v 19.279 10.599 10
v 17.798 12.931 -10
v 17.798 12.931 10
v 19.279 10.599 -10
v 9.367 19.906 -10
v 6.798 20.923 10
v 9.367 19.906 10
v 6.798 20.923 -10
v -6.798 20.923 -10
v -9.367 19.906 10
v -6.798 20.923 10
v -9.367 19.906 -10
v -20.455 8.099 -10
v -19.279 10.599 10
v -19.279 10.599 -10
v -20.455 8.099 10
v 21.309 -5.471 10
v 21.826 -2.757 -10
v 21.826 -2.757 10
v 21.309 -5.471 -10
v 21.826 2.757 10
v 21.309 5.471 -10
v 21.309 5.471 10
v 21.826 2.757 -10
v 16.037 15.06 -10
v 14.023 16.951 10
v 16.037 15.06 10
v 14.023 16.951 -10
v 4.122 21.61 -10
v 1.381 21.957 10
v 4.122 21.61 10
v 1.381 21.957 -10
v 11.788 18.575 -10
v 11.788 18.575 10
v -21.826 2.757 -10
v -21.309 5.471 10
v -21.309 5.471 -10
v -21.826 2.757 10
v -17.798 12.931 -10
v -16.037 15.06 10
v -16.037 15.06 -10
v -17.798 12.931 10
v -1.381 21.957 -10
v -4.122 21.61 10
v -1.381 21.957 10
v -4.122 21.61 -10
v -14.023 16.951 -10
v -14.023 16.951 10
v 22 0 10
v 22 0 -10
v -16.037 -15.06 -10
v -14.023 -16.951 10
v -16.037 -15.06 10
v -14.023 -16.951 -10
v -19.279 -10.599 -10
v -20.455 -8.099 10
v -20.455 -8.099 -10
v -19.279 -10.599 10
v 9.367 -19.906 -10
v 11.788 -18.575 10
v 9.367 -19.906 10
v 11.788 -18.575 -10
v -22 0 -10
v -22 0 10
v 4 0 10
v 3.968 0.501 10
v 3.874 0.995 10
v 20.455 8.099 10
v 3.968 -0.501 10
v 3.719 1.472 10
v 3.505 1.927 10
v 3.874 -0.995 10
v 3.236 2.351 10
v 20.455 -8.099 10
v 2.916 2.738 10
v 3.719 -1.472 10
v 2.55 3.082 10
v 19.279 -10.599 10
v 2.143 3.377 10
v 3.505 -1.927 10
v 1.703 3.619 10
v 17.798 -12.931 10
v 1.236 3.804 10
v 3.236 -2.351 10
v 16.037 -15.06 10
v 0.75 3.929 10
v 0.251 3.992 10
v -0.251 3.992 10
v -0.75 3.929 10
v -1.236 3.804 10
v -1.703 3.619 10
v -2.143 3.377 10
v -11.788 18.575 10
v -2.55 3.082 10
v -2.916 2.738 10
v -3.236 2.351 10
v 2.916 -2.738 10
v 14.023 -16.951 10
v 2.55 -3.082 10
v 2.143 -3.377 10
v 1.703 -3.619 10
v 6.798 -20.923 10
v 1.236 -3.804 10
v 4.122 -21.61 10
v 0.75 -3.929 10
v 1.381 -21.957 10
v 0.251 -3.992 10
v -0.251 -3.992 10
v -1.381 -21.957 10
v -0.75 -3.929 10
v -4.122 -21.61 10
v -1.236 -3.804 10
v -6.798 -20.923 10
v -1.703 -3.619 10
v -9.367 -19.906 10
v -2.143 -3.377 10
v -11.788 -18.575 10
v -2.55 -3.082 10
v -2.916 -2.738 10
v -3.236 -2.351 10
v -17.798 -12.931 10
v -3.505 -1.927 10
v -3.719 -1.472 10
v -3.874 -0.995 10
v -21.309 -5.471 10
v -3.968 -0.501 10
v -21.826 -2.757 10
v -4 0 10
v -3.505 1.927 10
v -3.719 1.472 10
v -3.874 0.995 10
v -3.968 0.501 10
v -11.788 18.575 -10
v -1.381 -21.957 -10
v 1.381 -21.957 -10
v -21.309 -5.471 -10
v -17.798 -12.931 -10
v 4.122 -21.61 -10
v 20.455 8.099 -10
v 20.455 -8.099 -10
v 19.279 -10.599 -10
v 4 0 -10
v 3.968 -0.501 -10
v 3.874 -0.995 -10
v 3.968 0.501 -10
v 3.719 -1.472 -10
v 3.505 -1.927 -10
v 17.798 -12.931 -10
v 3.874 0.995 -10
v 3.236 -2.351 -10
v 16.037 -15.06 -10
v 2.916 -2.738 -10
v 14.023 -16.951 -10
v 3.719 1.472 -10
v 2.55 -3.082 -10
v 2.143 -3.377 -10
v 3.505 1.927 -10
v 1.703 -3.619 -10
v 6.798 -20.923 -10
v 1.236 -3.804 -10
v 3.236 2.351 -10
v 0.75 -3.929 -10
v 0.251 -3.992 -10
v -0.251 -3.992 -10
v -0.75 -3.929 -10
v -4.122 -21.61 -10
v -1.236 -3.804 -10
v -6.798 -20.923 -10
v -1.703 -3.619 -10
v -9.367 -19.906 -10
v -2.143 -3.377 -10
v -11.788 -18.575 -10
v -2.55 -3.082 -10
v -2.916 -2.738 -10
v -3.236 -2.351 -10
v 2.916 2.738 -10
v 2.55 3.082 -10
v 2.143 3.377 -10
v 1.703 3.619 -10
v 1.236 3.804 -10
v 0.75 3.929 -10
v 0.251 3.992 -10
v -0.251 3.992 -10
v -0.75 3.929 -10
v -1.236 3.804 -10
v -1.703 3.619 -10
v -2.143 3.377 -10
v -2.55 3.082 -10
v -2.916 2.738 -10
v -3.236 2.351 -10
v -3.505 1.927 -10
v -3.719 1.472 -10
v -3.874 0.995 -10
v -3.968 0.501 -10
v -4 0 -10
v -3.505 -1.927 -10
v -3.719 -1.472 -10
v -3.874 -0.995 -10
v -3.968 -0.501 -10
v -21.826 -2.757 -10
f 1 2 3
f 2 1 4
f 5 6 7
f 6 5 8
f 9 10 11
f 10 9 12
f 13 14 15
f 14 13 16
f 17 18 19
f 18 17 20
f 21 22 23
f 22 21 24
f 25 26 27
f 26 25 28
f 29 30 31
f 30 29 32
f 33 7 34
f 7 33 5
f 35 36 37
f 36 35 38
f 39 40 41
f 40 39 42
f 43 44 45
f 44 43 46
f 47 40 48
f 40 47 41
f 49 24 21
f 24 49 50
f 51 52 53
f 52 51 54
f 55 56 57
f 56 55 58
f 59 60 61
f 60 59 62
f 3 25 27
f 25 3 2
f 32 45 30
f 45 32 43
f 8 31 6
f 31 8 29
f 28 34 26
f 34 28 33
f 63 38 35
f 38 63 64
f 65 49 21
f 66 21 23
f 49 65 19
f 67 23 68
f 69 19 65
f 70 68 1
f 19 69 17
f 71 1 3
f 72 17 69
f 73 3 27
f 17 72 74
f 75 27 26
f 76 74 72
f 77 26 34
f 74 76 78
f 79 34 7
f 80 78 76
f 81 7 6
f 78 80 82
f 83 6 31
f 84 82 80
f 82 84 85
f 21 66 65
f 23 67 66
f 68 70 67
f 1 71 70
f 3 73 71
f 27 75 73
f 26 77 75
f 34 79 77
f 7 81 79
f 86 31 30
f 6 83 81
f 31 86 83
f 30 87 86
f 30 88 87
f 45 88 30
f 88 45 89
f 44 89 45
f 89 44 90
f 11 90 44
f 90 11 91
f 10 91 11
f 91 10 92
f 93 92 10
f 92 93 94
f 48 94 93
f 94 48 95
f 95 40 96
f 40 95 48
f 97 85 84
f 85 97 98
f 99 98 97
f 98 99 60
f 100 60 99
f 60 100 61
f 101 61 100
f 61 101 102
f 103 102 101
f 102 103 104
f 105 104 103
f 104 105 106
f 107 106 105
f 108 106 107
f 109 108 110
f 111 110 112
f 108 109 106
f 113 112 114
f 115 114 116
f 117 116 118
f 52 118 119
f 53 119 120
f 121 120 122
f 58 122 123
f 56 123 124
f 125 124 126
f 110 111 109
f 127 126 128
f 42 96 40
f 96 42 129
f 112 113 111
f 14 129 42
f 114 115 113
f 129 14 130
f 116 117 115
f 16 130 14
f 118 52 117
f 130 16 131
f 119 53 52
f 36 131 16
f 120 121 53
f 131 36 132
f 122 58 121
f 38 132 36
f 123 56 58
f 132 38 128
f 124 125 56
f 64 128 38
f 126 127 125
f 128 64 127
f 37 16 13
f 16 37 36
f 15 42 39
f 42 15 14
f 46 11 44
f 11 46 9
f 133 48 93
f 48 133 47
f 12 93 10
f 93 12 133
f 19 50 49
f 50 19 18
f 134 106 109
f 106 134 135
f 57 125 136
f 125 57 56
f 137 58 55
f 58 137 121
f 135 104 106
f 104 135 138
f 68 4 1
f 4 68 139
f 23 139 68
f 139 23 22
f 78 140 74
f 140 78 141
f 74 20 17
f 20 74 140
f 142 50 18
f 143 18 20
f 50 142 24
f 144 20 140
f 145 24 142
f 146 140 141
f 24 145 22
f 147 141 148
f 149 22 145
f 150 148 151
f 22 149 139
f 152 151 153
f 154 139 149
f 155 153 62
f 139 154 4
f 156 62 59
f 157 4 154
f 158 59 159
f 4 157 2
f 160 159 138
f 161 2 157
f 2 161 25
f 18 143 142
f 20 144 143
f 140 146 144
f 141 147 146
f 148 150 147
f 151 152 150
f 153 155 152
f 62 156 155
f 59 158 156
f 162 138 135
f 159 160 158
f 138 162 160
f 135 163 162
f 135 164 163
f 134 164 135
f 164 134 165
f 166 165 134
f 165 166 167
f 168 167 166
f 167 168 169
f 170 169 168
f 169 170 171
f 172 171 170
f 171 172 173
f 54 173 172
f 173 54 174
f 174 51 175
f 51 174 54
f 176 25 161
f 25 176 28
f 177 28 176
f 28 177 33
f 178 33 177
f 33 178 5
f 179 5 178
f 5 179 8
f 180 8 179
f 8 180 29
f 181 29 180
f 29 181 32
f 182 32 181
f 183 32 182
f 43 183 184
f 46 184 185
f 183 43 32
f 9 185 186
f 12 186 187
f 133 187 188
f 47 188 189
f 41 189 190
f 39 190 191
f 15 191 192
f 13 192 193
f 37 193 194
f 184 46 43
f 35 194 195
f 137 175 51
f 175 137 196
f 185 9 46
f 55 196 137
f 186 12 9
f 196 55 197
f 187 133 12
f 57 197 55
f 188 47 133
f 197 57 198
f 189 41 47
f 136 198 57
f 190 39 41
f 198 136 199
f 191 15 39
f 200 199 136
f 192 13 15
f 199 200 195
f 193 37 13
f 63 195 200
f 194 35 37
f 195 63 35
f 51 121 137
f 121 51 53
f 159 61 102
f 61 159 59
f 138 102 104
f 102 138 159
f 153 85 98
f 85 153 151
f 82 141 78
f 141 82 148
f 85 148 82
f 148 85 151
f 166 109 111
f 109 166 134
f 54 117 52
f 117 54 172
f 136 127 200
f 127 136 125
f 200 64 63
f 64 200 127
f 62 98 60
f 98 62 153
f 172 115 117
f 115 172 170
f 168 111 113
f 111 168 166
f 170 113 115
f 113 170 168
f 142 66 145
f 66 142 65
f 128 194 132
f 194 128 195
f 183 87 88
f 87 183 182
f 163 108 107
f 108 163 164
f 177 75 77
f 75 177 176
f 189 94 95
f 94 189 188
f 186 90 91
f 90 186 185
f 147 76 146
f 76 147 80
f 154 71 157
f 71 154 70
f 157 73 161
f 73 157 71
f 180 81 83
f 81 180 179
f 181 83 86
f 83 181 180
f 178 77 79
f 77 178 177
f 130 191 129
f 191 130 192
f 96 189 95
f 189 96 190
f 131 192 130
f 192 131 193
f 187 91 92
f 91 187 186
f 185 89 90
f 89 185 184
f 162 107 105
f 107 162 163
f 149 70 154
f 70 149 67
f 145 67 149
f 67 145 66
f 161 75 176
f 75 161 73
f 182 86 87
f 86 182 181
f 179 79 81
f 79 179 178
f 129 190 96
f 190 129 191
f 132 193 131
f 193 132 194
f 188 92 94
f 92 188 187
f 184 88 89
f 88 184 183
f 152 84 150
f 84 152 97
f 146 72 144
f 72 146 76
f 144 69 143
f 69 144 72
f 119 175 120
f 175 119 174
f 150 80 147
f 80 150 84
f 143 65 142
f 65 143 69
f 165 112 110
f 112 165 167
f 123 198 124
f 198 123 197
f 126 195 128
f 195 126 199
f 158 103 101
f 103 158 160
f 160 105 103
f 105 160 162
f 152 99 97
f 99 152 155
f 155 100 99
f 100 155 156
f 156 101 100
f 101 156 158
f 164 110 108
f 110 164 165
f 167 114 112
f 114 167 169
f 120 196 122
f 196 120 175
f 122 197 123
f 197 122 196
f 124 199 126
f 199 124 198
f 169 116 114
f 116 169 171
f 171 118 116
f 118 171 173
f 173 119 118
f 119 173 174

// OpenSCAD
$fn = 50;


difference() {
	union() {
		translate(v = [0, 0, -10.0000000000]) {
			cylinder(h = 20, r = 22.0000000000);
		}
	}
	union() {
		translate(v = [0, 0, -100.0000000000]) {
			cylinder(h = 200, r = 4);
		}
	}
}
